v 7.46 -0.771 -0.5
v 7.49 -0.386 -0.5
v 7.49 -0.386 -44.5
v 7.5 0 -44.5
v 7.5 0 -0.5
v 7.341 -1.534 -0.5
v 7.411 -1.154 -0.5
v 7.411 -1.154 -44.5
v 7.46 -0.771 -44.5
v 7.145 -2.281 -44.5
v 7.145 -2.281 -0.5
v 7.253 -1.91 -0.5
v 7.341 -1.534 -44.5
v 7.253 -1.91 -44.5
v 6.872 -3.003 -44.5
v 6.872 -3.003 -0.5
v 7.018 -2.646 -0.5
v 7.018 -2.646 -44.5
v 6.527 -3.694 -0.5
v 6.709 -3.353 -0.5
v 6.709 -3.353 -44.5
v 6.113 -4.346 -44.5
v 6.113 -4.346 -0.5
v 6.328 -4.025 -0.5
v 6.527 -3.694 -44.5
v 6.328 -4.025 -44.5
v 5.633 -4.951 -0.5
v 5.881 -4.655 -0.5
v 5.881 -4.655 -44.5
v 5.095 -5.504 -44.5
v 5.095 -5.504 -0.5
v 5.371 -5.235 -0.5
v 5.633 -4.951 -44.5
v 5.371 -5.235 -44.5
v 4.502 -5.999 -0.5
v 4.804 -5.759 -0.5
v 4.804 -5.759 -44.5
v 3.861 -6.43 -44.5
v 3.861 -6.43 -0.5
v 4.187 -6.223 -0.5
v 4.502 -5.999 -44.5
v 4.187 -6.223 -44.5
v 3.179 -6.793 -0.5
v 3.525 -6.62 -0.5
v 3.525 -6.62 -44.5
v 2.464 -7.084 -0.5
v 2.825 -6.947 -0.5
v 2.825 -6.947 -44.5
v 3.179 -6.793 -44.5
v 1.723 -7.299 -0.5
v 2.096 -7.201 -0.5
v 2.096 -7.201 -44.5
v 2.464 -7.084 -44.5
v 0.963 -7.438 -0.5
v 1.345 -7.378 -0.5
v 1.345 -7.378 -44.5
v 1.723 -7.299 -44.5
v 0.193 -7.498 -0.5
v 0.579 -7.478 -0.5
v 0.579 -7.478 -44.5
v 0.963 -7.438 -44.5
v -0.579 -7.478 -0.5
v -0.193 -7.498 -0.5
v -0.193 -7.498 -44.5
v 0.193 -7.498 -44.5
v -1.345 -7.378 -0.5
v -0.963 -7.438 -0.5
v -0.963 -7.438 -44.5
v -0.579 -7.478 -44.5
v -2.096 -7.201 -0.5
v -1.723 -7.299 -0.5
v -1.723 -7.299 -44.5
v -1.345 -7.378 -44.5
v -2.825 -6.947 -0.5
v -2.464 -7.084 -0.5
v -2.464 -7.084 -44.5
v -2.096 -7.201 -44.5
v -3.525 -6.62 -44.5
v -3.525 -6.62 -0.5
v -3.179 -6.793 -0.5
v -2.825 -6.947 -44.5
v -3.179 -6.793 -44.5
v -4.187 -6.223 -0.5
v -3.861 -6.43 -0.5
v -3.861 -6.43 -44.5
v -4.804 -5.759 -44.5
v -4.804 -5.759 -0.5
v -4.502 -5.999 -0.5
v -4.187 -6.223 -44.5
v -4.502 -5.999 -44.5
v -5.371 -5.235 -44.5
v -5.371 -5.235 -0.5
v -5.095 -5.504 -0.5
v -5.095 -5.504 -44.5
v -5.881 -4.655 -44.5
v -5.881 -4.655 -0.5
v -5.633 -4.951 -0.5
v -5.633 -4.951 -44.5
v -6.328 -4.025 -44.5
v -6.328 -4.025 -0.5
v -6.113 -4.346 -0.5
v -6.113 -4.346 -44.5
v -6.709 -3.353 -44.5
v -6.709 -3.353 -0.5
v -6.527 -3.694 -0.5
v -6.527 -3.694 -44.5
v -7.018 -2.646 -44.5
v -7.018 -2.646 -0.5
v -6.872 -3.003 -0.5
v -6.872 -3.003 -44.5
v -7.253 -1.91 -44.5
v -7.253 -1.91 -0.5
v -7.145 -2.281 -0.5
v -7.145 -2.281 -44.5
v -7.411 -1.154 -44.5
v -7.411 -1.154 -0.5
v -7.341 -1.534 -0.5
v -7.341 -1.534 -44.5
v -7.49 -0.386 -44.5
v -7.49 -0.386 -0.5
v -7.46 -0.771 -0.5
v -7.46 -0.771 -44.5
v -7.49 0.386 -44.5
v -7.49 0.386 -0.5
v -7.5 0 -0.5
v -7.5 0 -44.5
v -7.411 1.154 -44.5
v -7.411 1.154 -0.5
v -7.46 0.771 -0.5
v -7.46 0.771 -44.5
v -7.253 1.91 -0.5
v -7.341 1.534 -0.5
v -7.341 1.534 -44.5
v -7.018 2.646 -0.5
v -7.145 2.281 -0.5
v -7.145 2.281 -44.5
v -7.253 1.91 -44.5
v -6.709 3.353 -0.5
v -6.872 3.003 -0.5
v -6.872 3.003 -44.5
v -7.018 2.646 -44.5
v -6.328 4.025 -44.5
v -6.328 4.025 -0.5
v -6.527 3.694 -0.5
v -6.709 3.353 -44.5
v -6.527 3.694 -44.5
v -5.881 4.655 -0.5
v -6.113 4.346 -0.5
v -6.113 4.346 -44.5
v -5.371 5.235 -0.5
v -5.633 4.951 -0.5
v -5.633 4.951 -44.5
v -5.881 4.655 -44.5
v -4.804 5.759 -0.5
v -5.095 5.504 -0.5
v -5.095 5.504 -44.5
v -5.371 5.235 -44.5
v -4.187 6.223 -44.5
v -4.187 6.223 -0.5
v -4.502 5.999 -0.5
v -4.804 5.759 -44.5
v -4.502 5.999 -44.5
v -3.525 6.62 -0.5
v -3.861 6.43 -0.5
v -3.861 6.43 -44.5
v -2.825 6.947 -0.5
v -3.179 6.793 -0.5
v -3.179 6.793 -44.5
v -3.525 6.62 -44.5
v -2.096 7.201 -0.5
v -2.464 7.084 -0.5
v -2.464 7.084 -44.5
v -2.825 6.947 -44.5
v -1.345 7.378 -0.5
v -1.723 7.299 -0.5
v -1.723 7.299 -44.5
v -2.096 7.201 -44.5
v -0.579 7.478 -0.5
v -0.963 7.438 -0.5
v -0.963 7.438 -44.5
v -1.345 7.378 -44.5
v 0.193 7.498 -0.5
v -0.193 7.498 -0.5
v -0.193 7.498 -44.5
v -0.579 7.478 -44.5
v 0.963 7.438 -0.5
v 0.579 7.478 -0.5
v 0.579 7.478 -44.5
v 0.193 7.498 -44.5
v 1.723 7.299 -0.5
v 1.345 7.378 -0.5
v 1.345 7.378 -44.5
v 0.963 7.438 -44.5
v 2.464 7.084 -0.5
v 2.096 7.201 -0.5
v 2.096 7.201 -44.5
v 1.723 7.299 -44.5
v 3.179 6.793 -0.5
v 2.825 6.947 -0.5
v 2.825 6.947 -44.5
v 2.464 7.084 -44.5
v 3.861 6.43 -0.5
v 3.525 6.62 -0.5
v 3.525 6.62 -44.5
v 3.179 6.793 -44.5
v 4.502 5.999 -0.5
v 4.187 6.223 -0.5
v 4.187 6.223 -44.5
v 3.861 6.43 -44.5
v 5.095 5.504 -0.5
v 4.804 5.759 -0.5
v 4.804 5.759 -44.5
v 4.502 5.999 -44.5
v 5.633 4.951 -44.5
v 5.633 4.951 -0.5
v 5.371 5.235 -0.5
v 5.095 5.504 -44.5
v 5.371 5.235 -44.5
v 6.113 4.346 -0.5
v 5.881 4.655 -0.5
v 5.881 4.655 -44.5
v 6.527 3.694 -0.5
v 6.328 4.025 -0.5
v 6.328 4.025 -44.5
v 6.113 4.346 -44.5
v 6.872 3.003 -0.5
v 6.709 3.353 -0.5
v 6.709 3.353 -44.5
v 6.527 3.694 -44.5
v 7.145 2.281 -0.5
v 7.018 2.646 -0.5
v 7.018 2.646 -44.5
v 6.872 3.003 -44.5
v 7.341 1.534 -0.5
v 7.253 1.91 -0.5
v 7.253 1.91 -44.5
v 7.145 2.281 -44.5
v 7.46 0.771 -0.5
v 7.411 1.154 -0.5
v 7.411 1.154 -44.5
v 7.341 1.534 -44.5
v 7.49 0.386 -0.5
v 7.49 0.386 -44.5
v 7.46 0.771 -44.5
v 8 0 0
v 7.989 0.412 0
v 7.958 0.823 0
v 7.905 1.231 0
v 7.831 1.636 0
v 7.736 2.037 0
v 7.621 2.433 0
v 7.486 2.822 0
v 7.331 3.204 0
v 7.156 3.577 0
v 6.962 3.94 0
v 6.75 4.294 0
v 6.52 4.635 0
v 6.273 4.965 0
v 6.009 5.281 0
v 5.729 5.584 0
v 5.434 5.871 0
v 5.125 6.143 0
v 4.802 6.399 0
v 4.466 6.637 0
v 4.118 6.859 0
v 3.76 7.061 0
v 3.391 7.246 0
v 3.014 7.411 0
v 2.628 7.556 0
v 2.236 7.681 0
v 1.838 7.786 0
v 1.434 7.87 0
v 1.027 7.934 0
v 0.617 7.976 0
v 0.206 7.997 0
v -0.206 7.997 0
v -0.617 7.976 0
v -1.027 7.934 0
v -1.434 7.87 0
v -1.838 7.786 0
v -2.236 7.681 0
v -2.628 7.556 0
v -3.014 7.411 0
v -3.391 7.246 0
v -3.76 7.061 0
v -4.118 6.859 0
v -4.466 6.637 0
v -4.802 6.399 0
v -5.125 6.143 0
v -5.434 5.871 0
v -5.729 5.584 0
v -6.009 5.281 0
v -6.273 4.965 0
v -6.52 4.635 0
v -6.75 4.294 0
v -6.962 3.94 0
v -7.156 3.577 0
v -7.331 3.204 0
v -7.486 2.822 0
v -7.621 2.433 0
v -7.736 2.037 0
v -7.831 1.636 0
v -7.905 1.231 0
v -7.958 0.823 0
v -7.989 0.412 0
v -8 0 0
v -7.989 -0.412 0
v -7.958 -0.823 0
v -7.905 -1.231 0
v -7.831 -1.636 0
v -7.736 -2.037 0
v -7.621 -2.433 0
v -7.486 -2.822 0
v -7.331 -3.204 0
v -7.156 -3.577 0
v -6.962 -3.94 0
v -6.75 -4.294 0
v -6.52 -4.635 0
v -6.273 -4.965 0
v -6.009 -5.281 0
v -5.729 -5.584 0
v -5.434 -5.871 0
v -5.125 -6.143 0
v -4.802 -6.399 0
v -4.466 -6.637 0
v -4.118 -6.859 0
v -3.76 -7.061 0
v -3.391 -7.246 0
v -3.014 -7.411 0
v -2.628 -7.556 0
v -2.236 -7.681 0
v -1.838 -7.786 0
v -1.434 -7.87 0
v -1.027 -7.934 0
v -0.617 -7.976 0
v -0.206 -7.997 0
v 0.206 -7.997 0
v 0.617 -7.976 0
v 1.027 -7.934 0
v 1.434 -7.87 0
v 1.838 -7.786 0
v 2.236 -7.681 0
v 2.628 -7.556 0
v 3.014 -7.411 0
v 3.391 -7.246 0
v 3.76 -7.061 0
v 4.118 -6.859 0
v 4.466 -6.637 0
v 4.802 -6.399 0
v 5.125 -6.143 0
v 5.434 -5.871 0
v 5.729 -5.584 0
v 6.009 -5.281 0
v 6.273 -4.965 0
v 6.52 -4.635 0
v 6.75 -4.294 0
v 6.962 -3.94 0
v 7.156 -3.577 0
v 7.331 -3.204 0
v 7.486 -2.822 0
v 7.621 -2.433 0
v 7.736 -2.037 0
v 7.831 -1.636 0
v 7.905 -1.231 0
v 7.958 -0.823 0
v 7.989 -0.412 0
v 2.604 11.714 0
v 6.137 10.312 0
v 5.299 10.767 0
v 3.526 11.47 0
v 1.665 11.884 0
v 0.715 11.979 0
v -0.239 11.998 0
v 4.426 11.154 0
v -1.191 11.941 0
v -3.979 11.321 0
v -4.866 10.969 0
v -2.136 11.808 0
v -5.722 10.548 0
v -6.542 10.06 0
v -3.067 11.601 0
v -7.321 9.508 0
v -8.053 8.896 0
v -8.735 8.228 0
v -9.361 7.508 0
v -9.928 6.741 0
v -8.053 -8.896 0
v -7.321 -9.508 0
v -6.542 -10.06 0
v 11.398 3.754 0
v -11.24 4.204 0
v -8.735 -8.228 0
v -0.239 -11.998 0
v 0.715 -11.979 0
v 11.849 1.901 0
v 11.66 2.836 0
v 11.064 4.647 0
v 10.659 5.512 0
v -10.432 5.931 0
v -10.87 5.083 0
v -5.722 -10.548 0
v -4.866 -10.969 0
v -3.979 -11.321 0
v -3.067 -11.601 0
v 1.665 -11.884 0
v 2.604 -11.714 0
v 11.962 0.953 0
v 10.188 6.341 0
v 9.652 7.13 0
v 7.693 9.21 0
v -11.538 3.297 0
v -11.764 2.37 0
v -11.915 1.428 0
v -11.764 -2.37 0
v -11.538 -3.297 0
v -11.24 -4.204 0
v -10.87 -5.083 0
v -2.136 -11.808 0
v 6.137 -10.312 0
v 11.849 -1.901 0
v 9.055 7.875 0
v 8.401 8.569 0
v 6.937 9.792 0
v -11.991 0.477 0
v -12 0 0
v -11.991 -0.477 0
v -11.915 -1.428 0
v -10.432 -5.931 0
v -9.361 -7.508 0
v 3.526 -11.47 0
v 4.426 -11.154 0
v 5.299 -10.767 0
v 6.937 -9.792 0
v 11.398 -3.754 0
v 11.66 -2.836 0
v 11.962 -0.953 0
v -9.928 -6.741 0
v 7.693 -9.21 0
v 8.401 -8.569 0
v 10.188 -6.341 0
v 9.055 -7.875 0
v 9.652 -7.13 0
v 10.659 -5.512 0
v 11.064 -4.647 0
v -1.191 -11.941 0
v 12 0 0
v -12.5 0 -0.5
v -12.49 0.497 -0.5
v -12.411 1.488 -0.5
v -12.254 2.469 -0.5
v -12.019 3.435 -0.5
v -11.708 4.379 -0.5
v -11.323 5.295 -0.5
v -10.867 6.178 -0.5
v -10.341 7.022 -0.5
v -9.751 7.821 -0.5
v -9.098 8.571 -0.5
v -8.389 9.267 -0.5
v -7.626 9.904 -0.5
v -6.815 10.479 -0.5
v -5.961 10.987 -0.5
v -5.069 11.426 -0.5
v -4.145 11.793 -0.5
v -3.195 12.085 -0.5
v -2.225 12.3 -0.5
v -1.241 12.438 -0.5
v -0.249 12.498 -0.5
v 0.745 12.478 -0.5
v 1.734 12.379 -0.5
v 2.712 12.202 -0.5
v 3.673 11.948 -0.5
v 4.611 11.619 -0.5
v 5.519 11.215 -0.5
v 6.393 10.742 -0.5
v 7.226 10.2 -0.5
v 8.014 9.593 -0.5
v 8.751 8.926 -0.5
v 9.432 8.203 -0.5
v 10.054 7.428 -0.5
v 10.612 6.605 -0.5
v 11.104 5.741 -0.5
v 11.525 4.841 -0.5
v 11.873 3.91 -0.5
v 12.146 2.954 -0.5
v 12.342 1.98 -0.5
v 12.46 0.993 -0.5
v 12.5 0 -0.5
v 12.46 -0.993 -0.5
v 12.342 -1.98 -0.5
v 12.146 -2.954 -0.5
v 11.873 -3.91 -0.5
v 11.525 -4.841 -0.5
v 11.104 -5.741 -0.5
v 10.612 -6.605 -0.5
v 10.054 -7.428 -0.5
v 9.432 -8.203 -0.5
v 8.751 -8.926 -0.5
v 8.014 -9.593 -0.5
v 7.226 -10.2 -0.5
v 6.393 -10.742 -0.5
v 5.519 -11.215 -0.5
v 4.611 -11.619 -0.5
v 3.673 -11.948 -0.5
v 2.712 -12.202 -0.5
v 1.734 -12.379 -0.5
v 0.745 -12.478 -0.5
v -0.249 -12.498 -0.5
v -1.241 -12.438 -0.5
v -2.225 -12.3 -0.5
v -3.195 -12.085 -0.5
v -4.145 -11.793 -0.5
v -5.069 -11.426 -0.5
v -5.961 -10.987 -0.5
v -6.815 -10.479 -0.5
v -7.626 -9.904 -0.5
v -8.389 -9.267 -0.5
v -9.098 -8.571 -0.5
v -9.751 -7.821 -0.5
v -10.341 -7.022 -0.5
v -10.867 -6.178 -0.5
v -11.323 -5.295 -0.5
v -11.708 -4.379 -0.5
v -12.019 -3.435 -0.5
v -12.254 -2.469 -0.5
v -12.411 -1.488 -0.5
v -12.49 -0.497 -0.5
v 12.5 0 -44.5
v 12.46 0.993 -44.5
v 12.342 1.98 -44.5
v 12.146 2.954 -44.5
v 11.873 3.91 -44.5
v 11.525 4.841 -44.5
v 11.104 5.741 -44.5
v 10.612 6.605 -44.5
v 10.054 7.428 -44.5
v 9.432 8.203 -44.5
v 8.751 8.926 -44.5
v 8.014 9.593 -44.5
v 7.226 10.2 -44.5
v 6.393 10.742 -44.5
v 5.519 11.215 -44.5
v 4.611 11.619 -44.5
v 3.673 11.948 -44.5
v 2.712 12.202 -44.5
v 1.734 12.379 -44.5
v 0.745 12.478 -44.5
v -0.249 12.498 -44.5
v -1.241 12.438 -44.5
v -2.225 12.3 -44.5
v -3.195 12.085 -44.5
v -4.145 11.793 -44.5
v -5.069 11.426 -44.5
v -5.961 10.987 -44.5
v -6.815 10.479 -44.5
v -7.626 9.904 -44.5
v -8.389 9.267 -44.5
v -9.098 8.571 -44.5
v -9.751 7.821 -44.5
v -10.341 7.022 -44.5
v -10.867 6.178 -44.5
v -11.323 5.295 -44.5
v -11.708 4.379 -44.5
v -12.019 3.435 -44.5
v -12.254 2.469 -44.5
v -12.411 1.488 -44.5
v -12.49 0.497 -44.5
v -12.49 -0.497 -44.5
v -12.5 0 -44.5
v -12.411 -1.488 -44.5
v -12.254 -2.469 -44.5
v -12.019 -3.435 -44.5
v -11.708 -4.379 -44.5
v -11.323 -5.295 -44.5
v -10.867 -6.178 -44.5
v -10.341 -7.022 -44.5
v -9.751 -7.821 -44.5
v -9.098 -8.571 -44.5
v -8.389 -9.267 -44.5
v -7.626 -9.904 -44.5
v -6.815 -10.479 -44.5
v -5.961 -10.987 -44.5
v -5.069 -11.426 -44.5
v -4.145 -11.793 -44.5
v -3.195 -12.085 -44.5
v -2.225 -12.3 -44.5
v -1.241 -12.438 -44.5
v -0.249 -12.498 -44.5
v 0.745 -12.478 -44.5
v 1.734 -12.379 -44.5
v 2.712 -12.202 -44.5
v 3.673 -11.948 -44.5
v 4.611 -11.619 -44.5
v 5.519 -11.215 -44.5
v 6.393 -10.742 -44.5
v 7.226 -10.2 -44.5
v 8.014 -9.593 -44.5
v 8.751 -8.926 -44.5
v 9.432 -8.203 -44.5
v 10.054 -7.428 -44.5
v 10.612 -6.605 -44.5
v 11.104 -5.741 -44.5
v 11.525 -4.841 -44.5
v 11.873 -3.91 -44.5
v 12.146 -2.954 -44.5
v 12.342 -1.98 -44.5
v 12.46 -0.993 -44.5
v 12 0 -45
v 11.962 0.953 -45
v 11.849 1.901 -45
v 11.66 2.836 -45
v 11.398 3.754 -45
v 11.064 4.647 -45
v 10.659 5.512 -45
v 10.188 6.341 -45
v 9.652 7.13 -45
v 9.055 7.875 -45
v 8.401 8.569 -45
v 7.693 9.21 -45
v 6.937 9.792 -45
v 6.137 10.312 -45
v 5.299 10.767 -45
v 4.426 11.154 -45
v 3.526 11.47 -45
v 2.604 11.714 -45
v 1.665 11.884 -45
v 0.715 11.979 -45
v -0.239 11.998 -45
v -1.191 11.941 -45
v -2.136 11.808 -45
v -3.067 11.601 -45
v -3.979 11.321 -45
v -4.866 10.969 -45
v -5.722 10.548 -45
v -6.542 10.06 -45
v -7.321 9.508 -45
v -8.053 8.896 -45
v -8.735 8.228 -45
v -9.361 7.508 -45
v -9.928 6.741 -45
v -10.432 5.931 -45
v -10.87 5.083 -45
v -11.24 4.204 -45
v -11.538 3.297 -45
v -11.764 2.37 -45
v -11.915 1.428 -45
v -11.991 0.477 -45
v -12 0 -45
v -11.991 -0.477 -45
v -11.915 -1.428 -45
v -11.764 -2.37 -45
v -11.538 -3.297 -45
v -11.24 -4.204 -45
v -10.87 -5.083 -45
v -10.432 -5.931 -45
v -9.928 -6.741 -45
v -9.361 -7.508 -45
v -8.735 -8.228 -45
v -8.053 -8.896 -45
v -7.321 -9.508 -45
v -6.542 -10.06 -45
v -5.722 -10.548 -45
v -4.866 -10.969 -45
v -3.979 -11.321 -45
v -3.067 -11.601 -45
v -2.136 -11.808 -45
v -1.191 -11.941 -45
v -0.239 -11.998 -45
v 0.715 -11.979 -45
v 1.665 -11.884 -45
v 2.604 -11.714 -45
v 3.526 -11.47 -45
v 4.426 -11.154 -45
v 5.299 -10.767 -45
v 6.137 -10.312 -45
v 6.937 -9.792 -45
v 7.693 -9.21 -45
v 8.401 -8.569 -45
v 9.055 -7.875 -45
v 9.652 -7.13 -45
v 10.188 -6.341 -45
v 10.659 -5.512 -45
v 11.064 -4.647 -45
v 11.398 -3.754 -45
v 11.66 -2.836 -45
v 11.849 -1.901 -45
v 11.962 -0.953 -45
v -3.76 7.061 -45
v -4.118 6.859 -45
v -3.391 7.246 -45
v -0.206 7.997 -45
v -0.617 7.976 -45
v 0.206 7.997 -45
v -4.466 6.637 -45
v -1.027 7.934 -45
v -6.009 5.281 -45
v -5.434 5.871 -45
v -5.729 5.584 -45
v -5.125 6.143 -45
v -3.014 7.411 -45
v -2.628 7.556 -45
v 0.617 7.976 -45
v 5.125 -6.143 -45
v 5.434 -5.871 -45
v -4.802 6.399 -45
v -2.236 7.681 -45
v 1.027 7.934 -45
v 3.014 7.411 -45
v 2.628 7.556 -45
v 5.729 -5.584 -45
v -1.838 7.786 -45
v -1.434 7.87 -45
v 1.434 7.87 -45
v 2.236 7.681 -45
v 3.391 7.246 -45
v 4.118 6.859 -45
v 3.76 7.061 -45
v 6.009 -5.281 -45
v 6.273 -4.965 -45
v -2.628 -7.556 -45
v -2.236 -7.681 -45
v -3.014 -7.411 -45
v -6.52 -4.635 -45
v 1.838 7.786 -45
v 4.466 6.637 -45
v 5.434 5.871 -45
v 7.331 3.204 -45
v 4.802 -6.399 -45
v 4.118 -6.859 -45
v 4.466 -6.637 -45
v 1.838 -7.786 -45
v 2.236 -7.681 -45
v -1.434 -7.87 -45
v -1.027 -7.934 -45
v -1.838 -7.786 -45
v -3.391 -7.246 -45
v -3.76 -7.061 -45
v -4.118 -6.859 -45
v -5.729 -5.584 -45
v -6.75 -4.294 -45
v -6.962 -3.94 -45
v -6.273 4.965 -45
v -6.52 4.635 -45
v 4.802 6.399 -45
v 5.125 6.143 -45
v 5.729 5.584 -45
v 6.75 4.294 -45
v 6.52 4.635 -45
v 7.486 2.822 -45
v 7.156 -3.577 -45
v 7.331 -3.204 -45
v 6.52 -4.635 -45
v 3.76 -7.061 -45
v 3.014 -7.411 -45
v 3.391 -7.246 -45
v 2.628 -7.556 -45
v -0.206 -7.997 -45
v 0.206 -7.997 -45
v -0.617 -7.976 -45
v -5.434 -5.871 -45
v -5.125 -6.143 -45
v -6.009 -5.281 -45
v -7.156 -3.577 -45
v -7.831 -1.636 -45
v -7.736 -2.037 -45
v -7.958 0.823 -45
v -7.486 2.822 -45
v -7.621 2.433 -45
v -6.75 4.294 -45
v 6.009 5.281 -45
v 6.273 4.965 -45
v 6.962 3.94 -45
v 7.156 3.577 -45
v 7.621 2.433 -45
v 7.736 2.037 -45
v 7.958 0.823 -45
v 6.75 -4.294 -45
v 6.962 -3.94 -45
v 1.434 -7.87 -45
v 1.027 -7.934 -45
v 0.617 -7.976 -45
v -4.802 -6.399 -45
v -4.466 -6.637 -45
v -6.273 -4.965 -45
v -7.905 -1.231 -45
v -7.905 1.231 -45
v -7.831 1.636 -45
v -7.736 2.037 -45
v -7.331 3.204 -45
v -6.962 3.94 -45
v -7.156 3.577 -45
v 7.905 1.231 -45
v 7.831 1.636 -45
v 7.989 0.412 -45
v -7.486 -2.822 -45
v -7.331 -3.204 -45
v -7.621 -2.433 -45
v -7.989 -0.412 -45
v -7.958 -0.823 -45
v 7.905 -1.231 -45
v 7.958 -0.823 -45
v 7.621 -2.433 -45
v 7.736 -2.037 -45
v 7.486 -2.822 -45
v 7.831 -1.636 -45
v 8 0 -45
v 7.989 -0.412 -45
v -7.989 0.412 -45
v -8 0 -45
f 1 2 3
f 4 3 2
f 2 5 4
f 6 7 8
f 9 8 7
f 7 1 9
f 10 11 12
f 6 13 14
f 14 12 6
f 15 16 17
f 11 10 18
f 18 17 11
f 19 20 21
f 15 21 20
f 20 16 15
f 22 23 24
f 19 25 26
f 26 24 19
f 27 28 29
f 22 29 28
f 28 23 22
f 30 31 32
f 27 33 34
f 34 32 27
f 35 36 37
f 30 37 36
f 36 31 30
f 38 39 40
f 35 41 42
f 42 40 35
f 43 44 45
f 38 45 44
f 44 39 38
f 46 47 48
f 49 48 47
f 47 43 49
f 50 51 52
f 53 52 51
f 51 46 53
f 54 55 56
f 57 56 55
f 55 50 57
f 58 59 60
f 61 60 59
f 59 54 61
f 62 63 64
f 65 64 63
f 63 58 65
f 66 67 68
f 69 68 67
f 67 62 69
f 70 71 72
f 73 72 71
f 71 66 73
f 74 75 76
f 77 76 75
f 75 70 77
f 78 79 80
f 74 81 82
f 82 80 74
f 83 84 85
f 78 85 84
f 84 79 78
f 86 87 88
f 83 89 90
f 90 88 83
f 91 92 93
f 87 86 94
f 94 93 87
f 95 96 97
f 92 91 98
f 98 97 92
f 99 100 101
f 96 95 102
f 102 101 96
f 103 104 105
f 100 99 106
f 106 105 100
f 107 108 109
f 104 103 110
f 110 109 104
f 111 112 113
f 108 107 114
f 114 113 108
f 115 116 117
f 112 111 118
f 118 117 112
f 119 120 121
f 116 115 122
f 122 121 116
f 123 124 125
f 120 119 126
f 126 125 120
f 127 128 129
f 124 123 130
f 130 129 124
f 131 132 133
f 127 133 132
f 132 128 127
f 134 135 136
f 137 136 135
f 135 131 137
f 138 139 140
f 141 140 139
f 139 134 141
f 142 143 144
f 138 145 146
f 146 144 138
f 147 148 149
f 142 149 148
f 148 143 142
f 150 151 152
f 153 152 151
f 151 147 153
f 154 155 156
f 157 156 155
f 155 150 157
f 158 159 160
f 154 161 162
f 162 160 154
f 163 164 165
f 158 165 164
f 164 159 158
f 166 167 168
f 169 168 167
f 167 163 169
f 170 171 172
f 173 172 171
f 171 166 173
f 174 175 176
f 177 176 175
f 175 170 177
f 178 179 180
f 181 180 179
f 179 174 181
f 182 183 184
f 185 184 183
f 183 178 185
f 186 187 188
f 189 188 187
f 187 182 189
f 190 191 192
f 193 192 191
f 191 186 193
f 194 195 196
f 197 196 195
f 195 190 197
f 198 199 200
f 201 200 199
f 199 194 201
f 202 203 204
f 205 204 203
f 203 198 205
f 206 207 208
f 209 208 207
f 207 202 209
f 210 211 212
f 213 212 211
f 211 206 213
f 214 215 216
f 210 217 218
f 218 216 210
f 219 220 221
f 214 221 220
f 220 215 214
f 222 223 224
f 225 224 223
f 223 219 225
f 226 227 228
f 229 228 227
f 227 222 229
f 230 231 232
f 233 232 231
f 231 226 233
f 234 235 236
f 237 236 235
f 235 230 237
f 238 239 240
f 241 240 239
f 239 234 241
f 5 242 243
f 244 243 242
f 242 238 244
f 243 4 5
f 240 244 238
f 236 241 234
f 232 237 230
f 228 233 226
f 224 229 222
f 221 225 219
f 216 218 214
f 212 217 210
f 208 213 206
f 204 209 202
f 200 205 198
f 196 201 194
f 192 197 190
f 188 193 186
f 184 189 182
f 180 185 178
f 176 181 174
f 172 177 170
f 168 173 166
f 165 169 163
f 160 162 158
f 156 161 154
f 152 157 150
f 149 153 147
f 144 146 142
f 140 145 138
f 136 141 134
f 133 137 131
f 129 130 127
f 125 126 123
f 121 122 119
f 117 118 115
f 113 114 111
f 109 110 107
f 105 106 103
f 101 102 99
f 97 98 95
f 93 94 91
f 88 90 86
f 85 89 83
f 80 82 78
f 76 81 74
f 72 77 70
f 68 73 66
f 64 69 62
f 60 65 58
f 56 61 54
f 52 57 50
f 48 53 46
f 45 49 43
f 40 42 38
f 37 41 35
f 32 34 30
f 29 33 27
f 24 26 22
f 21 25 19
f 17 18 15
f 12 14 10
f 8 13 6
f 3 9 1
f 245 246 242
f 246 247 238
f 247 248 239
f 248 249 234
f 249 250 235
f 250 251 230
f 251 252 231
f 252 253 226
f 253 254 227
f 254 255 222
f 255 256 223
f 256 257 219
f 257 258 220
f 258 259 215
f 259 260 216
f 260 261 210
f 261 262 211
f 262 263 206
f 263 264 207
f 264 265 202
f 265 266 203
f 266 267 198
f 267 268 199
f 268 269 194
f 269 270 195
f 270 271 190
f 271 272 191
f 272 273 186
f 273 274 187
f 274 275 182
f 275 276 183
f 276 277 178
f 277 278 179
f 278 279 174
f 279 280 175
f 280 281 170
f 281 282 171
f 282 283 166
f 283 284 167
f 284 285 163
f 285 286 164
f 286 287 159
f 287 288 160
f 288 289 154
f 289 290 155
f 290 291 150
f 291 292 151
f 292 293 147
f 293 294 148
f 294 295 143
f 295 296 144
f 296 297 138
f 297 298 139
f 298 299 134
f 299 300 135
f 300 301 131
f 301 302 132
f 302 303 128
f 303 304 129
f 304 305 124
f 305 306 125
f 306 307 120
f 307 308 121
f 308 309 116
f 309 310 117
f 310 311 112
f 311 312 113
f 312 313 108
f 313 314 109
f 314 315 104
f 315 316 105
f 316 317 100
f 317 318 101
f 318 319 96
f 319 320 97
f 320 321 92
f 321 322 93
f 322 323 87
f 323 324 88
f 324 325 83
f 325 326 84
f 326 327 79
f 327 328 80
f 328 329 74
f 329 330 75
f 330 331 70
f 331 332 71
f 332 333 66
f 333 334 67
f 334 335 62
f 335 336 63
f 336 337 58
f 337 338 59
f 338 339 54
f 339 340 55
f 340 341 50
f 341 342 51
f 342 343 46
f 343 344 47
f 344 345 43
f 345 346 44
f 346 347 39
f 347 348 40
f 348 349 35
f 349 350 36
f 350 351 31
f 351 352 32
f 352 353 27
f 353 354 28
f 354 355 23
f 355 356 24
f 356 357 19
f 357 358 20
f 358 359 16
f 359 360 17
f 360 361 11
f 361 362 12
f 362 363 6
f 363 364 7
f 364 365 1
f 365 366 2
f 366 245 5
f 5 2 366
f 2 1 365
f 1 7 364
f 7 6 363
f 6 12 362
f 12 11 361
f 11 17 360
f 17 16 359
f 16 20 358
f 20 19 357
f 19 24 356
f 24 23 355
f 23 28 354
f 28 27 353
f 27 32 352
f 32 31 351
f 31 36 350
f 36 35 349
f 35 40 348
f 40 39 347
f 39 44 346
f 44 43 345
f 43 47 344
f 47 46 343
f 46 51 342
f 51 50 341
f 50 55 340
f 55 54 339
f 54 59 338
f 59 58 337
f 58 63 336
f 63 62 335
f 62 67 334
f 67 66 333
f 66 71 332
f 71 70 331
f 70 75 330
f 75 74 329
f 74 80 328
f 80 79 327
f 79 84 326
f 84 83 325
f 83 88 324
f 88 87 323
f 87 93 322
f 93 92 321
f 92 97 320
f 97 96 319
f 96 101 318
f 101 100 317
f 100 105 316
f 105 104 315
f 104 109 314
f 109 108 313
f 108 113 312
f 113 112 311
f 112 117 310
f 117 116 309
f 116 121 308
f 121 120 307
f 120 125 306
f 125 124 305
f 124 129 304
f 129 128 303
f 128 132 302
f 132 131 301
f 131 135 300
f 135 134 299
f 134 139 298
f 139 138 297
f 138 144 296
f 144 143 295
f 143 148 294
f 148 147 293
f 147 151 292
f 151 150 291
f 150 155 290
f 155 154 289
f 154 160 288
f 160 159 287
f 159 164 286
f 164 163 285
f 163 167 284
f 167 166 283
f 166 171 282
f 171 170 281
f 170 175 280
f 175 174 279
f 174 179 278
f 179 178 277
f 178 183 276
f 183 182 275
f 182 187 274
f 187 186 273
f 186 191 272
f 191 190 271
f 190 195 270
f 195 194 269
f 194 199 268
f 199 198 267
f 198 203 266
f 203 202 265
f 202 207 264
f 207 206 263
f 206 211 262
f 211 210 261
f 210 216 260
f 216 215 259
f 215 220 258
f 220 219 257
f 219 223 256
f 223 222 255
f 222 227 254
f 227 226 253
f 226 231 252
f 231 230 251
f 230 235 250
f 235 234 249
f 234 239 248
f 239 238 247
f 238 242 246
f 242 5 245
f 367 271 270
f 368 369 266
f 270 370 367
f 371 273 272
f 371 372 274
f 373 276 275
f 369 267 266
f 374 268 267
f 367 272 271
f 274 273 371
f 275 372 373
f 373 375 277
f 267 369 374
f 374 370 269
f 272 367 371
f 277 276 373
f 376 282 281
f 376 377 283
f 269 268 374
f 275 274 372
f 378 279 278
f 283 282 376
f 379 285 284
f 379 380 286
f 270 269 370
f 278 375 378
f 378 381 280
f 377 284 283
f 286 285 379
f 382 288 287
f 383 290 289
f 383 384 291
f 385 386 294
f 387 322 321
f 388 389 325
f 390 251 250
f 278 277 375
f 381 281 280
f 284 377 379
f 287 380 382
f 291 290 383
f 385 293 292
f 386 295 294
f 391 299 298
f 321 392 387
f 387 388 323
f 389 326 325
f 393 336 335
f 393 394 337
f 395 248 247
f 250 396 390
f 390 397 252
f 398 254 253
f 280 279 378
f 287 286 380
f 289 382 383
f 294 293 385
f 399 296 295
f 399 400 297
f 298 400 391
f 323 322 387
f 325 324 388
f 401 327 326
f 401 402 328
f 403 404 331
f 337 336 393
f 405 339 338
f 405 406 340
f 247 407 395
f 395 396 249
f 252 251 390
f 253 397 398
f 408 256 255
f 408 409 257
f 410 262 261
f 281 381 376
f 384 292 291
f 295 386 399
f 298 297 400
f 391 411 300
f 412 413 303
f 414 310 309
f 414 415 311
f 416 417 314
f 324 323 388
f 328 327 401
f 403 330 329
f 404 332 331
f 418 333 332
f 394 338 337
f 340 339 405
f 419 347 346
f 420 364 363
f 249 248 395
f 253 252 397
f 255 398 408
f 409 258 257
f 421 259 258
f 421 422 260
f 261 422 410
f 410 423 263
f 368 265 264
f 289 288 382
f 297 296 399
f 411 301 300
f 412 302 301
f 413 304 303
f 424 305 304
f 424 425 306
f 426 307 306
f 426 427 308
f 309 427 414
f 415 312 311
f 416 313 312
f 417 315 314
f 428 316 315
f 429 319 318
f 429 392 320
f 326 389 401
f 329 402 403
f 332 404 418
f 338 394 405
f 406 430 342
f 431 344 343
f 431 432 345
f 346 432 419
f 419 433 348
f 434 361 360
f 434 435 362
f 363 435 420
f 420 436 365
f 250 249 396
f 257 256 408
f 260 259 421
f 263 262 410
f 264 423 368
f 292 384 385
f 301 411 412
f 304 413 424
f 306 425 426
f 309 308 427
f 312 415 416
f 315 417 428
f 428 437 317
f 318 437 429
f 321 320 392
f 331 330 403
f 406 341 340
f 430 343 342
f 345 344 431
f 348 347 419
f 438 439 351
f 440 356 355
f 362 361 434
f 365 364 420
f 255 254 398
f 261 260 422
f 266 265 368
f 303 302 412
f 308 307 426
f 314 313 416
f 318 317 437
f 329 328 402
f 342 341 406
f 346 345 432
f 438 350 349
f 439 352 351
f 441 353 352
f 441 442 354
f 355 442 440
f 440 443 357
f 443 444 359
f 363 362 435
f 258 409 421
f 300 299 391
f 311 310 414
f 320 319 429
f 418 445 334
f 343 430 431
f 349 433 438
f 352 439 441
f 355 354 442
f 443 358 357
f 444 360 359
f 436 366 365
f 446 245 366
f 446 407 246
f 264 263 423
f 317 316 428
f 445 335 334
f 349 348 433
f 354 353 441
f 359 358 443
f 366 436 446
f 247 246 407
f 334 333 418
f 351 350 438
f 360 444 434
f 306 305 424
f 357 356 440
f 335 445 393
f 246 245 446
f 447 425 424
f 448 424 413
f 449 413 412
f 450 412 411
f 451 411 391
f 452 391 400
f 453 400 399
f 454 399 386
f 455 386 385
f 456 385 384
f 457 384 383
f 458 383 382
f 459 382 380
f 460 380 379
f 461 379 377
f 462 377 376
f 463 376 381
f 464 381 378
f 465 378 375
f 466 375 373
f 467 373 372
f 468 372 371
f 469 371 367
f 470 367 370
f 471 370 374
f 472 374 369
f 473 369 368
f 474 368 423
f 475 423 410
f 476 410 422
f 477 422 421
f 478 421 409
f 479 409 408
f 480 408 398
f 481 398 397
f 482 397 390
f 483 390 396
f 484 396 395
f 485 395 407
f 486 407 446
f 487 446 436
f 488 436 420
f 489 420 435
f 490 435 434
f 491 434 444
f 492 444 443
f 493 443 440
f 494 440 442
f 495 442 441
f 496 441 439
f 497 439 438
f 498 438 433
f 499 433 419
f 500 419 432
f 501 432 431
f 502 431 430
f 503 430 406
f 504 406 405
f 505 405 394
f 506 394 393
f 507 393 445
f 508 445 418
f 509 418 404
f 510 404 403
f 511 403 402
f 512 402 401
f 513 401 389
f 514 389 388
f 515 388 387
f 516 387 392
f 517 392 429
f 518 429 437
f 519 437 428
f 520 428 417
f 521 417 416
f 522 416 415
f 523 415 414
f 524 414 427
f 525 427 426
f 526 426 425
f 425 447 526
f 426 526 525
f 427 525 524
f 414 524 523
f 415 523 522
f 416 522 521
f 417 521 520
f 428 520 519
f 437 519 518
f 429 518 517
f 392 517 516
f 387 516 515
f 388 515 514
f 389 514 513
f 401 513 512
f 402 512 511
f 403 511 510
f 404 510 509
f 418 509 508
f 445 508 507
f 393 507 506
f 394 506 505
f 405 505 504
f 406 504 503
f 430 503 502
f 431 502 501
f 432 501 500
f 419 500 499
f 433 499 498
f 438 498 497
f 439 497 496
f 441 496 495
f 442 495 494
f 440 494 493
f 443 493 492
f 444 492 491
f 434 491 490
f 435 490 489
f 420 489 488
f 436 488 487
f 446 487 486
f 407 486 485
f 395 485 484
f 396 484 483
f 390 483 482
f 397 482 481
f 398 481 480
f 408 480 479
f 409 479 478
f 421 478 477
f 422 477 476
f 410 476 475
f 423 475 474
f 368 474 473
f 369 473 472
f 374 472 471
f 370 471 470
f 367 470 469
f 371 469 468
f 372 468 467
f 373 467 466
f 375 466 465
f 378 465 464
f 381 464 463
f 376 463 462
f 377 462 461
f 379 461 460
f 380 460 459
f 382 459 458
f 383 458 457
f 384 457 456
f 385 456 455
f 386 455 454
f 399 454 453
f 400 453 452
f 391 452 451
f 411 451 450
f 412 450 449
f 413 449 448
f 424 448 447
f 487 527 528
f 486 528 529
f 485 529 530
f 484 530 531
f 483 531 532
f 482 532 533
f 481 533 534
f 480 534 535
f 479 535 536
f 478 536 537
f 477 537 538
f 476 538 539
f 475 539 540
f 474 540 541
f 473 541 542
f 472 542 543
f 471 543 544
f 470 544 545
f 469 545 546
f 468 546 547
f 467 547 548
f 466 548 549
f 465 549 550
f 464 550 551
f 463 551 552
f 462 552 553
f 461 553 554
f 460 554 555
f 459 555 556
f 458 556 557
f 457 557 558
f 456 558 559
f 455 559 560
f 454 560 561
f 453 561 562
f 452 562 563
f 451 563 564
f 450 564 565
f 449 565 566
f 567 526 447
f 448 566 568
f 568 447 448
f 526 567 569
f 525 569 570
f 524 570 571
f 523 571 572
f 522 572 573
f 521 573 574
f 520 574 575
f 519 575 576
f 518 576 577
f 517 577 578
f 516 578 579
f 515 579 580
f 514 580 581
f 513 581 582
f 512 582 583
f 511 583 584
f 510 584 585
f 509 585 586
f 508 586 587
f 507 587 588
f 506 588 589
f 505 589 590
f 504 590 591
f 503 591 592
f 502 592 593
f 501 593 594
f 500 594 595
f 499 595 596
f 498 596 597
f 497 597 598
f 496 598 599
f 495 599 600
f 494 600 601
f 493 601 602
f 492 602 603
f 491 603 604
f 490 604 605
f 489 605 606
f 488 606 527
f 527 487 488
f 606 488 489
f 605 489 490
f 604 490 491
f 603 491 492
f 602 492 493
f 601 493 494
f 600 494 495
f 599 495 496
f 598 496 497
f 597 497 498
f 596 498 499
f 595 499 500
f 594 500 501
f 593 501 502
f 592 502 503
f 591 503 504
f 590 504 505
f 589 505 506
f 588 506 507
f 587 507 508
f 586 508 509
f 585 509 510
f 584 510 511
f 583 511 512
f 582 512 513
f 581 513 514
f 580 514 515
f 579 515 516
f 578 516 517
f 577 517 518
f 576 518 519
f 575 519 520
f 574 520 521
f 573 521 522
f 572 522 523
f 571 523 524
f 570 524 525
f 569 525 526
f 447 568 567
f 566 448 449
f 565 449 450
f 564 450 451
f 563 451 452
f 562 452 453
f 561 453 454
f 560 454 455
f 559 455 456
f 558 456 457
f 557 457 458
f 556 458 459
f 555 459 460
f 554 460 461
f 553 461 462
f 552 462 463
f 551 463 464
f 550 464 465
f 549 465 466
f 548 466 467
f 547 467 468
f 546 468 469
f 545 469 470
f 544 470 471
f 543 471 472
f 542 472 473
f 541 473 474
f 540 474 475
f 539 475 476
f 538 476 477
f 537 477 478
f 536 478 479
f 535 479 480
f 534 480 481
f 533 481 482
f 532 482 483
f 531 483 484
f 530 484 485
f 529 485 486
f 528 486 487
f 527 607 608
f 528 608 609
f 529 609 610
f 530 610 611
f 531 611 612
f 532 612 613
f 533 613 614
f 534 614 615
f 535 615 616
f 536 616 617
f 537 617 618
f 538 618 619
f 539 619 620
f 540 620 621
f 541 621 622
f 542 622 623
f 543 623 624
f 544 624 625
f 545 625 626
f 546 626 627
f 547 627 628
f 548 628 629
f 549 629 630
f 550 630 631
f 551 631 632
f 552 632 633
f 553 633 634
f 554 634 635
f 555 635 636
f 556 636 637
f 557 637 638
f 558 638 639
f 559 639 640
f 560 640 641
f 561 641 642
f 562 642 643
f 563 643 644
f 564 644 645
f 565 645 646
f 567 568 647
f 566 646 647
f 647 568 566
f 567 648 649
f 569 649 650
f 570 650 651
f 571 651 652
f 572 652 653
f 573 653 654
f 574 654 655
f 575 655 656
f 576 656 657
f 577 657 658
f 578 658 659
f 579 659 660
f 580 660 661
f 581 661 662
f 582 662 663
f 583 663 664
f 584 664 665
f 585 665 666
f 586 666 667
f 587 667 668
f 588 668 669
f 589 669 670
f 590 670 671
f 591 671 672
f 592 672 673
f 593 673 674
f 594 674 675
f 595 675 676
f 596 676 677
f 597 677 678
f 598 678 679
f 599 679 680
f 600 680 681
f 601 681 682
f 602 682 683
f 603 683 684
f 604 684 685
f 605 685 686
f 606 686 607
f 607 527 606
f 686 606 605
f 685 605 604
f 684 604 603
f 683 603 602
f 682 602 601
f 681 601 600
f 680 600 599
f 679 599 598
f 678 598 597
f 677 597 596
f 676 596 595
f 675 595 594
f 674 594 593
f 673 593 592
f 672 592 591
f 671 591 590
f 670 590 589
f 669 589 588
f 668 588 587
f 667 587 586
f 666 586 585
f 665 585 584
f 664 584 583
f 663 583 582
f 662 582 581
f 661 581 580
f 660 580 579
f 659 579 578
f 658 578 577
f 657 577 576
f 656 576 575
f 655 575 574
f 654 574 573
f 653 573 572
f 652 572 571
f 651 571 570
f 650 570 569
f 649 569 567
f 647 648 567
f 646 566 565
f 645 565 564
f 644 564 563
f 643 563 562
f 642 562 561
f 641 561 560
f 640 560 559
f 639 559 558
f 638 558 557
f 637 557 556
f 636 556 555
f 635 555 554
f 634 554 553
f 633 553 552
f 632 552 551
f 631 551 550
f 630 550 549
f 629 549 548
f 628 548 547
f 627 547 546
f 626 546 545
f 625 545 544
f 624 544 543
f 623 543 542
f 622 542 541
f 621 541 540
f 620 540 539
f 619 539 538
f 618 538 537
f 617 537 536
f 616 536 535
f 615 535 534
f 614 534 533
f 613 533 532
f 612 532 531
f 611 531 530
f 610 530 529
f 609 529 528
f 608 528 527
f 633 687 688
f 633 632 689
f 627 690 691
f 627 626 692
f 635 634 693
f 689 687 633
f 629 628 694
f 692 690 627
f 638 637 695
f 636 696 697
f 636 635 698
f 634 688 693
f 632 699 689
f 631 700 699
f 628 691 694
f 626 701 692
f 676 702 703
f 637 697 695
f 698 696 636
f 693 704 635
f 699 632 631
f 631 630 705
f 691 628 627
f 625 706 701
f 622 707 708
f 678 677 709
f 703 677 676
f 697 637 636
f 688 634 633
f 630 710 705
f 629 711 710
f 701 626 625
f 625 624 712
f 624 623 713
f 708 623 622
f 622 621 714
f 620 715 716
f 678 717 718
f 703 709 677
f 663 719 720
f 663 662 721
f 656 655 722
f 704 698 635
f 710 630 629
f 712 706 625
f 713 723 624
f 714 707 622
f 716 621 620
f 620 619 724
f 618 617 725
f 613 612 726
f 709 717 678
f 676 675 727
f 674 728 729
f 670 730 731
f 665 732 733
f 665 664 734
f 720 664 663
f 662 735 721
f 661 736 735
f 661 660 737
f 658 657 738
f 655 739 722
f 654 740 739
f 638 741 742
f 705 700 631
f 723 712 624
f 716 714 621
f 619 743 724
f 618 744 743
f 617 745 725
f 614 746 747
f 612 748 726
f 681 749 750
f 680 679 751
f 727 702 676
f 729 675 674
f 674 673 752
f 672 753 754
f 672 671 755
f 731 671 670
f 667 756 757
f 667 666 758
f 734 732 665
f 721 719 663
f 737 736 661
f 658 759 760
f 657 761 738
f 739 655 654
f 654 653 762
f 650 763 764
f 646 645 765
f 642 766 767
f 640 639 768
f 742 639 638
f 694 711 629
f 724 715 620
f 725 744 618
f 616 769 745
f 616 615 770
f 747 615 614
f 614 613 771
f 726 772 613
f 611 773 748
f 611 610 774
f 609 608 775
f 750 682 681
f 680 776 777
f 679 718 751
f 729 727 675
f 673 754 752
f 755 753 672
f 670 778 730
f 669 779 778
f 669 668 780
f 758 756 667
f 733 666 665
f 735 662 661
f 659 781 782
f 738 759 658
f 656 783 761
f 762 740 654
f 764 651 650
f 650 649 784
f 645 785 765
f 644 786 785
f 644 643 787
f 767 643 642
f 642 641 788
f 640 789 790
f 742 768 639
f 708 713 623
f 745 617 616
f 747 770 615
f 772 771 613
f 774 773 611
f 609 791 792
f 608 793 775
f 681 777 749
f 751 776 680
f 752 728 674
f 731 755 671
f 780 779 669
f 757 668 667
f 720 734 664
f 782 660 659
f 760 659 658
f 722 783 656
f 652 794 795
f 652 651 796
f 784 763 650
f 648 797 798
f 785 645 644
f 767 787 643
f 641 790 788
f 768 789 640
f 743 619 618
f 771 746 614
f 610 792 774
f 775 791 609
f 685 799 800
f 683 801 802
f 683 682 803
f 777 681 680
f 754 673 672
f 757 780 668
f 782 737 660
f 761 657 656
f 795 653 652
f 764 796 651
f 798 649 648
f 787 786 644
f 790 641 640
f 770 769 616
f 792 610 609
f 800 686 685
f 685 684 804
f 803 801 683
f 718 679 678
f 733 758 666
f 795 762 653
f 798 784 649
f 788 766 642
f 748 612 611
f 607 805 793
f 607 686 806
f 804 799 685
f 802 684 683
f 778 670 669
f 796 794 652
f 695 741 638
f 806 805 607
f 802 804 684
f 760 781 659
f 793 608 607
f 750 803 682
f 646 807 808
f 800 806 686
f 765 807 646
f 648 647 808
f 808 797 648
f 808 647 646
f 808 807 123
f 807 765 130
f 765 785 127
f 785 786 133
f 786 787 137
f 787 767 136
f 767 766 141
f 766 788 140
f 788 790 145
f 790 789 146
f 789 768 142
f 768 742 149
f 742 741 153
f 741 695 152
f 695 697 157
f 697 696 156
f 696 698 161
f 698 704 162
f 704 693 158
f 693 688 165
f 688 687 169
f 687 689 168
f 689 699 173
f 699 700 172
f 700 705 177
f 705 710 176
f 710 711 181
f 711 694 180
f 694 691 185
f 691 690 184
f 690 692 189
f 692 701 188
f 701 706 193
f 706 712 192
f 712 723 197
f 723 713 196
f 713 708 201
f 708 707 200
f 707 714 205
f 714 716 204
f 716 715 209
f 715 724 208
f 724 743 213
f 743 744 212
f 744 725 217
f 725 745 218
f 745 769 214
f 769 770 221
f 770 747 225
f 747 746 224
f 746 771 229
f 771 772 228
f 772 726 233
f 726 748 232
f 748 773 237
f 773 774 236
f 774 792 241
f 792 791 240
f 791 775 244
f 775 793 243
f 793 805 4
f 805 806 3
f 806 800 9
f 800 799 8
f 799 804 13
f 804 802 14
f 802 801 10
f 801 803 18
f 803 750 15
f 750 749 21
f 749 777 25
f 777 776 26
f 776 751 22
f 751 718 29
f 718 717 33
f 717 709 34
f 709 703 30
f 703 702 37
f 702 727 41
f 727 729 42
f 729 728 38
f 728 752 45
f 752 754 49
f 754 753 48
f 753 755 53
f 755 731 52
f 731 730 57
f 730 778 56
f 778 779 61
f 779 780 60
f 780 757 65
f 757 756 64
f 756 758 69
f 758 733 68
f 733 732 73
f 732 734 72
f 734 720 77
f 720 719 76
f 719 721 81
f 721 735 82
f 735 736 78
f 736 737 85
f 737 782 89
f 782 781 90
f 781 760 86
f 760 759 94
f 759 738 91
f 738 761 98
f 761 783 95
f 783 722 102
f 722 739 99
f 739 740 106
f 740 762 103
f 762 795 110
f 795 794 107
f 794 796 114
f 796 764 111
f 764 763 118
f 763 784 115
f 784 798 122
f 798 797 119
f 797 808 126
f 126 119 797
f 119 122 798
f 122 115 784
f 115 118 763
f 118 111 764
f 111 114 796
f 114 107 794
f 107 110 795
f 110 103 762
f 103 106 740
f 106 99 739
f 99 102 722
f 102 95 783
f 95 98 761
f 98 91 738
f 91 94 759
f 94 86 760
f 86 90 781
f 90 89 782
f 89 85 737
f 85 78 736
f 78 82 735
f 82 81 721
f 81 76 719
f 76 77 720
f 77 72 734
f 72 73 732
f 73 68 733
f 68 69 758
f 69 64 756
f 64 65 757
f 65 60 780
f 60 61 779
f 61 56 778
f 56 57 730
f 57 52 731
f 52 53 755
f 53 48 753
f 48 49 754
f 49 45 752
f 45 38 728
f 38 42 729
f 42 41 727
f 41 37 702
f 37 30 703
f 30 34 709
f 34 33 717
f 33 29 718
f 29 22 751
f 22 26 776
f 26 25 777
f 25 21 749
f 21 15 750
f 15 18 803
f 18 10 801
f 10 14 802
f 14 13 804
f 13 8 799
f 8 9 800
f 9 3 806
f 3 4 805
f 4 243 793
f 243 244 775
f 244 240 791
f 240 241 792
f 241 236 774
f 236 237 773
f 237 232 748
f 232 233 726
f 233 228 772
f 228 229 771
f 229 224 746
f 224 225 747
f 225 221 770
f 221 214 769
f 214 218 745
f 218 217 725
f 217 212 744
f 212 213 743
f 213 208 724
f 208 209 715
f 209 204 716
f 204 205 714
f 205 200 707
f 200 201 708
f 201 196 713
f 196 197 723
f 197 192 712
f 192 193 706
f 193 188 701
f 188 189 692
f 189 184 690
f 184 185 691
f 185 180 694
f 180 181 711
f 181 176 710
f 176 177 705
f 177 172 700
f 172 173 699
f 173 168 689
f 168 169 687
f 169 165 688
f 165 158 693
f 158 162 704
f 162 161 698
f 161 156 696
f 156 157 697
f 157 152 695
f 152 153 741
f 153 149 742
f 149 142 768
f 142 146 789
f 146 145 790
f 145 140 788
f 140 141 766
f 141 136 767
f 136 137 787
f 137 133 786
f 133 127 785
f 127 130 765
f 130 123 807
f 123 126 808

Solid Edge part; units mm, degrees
sketch "Sketch1" plane through (0, 0, 0) normal (0, 0, 1) x (1, 0, 0)
  circle A0 centre (0, 0) radius 12.5
  circle A1 centre (0, 0) radius 7.5
extrude "Extrusionsausprägung_28" add sketch "Sketch1" against normal blind 45
chamfer "Fase_17" distance 0.5 angle 45 2 edges at (-7.5, 0, 0) (-12.5, 0, 0)
chamfer "Fase_18" distance 0.5 angle 45 2 edges at (-7.5, 0, -45) (-12.5, 0, -45)
